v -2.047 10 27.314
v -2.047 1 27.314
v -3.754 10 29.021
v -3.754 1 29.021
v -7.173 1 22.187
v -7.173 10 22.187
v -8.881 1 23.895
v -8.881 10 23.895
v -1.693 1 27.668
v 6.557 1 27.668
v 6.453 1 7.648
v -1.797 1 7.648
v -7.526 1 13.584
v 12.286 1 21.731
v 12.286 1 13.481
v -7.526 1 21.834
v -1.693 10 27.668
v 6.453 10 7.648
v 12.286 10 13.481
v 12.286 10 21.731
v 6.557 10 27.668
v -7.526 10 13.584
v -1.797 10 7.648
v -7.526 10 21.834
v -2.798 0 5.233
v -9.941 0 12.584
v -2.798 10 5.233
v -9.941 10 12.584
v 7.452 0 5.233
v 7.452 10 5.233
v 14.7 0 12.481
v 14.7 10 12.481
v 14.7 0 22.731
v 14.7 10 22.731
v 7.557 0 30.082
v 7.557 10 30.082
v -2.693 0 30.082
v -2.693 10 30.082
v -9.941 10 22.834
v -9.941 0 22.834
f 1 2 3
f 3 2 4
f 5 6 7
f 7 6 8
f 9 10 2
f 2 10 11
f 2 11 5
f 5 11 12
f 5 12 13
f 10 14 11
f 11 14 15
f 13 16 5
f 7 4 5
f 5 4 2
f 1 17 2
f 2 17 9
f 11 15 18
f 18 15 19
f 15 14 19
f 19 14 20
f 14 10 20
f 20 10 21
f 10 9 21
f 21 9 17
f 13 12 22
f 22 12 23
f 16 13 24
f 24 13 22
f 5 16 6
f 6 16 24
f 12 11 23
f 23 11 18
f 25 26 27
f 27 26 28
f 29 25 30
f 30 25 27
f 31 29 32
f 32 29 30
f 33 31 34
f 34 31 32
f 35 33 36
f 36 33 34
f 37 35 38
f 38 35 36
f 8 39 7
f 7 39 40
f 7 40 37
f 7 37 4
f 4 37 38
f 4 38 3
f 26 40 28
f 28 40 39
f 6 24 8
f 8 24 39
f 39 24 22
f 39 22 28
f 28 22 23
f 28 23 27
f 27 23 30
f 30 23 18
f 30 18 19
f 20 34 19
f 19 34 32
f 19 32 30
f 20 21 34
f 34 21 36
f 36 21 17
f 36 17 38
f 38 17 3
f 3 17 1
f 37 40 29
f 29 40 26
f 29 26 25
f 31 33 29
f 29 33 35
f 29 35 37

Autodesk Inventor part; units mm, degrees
ref_plane "YZ Plane" through (0, 0, 0) normal (1, 0, 0) x (0, 1, 0)
ref_plane "XZ Plane" through (0, 0, 0) normal (0, 1, 0) x (-1, 0, 0)
ref_plane "XY Plane" through (0, 0, 0) normal (0, 0, 1) x (1, 0, 0)
sketch "Sketch1" plane through (0, 0, 0) normal (0, 1, 0) x (-1, 0, 0)
  line L0 (7.5264, 21.8341) -> (7.5264, 13.5841)
  line L1 (7.5264, 13.5841) -> (1.7974, 7.6477)
  line L2 (1.7974, 7.6477) -> (-6.4526, 7.6477)
  line L3 (7.5264, 21.8341) -> (1.6928, 27.6678)
  line L4 (1.6928, 27.6678) -> (-6.5572, 27.6678)
  line L5 (-6.5572, 27.6678) -> (-12.2862, 21.7314)
  line L6 (-12.2862, 21.7314) -> (-12.2862, 13.4814)
  line L7 (-12.2862, 13.4814) -> (-6.4526, 7.6477)
  line L8 (9.9412, 22.8339) -> (9.9412, 12.5839)
  line L9 (9.9412, 12.5839) -> (2.7976, 5.2333)
  line L10 (2.7976, 5.2333) -> (-7.4524, 5.2333)
  line L11 (9.9412, 22.8339) -> (2.6934, 30.0818)
  line L12 (2.6934, 30.0818) -> (-7.5566, 30.0818)
  line L13 (-7.5566, 30.0818) -> (-14.7002, 22.7311)
  line L14 (-14.7002, 22.7311) -> (-14.7002, 12.4811)
  line L15 (-14.7002, 12.4811) -> (-7.4524, 5.2333)
  point P0 (0, 0)
  point P1 (1, 1)
  dimension "d0" = 8.25
  dimension "d3" = 8.25
  dimension "d5" = 8.25
  dimension "d7" = 8.25
  dimension "d8" = 8.25
  dimension "d9" = 8.25
  dimension "d12" = 8.25
  dimension "d17" = 8.25
  dimension "d18" = 135
  dimension "d19" = 10.25
  dimension "d20" = 10.25
  dimension "d21" = 10.25
  dimension "d22" = 10.25
  dimension "d23" = 10.25
  dimension "d24" = 10.25
  dimension "d25" = 10.25
  dimension "d26" = 10.25
  dimension "d27" = 135
  dimension "d29" = 2.414
  dimension "d31" = 2.414
  dimension "d32" = 2.4144
  dimension "d33" = 2.4148
extrude "OutsideHeight" add sketch "Sketch1" along normal blind 10
extrude "BaseHeight" add sketch "Sketch1" along normal blind 1 contours L0 L1 L2 L7 L6 L5 L4 L3
sketch "Sketch2" plane through (-2.6934, 0, 30.0818) normal (-0.7071, 0, 0.7071) x (0.7071, 0, 0.7071)
  line L0 (-10.25, 10) -> (0, 10) projected
  line L1 (-0.1464, 0) -> (-10.3964, 0) projected
  line L2 (-8.75, 10) -> (-1.5, 10)
  line L3 (-10.25, 0) -> (-10.25, 10) projected
  line L4 (0, 0) -> (0, 10) projected
  line L5 (-8.75, 1) -> (-1.5, 1)
  line L6 (-8.75, 10) -> (-8.75, 1)
  line L7 (-1.5, 10) -> (-1.5, 1)
  point P0 (-19.3665, 0)
  dimension "d41" = 1.5
  dimension "d42" = 1.5
  dimension "d43" = 1
extrude "SideCut" cut sketch "Sketch2" against normal blind 2.5
equation "\"d3\" = d0"
equation "\"d5\" = d0"
equation "\"d7\" = d0"
equation "\"d8\" = d0"
equation "\"d9\" = d0"
equation "\"d12\" = d0"
equation "\"d17\" = d0"
equation "\"d20\" = d19"
equation "\"d21\" = d19"
equation "\"d22\" = d19"
equation "\"d23\" = d19"
equation "\"d24\" = d19"
equation "\"d25\" = d19"
equation "\"d26\" = d19"
equation "\"d42\" = d41"
properties part number "TokenHolderSingle"
